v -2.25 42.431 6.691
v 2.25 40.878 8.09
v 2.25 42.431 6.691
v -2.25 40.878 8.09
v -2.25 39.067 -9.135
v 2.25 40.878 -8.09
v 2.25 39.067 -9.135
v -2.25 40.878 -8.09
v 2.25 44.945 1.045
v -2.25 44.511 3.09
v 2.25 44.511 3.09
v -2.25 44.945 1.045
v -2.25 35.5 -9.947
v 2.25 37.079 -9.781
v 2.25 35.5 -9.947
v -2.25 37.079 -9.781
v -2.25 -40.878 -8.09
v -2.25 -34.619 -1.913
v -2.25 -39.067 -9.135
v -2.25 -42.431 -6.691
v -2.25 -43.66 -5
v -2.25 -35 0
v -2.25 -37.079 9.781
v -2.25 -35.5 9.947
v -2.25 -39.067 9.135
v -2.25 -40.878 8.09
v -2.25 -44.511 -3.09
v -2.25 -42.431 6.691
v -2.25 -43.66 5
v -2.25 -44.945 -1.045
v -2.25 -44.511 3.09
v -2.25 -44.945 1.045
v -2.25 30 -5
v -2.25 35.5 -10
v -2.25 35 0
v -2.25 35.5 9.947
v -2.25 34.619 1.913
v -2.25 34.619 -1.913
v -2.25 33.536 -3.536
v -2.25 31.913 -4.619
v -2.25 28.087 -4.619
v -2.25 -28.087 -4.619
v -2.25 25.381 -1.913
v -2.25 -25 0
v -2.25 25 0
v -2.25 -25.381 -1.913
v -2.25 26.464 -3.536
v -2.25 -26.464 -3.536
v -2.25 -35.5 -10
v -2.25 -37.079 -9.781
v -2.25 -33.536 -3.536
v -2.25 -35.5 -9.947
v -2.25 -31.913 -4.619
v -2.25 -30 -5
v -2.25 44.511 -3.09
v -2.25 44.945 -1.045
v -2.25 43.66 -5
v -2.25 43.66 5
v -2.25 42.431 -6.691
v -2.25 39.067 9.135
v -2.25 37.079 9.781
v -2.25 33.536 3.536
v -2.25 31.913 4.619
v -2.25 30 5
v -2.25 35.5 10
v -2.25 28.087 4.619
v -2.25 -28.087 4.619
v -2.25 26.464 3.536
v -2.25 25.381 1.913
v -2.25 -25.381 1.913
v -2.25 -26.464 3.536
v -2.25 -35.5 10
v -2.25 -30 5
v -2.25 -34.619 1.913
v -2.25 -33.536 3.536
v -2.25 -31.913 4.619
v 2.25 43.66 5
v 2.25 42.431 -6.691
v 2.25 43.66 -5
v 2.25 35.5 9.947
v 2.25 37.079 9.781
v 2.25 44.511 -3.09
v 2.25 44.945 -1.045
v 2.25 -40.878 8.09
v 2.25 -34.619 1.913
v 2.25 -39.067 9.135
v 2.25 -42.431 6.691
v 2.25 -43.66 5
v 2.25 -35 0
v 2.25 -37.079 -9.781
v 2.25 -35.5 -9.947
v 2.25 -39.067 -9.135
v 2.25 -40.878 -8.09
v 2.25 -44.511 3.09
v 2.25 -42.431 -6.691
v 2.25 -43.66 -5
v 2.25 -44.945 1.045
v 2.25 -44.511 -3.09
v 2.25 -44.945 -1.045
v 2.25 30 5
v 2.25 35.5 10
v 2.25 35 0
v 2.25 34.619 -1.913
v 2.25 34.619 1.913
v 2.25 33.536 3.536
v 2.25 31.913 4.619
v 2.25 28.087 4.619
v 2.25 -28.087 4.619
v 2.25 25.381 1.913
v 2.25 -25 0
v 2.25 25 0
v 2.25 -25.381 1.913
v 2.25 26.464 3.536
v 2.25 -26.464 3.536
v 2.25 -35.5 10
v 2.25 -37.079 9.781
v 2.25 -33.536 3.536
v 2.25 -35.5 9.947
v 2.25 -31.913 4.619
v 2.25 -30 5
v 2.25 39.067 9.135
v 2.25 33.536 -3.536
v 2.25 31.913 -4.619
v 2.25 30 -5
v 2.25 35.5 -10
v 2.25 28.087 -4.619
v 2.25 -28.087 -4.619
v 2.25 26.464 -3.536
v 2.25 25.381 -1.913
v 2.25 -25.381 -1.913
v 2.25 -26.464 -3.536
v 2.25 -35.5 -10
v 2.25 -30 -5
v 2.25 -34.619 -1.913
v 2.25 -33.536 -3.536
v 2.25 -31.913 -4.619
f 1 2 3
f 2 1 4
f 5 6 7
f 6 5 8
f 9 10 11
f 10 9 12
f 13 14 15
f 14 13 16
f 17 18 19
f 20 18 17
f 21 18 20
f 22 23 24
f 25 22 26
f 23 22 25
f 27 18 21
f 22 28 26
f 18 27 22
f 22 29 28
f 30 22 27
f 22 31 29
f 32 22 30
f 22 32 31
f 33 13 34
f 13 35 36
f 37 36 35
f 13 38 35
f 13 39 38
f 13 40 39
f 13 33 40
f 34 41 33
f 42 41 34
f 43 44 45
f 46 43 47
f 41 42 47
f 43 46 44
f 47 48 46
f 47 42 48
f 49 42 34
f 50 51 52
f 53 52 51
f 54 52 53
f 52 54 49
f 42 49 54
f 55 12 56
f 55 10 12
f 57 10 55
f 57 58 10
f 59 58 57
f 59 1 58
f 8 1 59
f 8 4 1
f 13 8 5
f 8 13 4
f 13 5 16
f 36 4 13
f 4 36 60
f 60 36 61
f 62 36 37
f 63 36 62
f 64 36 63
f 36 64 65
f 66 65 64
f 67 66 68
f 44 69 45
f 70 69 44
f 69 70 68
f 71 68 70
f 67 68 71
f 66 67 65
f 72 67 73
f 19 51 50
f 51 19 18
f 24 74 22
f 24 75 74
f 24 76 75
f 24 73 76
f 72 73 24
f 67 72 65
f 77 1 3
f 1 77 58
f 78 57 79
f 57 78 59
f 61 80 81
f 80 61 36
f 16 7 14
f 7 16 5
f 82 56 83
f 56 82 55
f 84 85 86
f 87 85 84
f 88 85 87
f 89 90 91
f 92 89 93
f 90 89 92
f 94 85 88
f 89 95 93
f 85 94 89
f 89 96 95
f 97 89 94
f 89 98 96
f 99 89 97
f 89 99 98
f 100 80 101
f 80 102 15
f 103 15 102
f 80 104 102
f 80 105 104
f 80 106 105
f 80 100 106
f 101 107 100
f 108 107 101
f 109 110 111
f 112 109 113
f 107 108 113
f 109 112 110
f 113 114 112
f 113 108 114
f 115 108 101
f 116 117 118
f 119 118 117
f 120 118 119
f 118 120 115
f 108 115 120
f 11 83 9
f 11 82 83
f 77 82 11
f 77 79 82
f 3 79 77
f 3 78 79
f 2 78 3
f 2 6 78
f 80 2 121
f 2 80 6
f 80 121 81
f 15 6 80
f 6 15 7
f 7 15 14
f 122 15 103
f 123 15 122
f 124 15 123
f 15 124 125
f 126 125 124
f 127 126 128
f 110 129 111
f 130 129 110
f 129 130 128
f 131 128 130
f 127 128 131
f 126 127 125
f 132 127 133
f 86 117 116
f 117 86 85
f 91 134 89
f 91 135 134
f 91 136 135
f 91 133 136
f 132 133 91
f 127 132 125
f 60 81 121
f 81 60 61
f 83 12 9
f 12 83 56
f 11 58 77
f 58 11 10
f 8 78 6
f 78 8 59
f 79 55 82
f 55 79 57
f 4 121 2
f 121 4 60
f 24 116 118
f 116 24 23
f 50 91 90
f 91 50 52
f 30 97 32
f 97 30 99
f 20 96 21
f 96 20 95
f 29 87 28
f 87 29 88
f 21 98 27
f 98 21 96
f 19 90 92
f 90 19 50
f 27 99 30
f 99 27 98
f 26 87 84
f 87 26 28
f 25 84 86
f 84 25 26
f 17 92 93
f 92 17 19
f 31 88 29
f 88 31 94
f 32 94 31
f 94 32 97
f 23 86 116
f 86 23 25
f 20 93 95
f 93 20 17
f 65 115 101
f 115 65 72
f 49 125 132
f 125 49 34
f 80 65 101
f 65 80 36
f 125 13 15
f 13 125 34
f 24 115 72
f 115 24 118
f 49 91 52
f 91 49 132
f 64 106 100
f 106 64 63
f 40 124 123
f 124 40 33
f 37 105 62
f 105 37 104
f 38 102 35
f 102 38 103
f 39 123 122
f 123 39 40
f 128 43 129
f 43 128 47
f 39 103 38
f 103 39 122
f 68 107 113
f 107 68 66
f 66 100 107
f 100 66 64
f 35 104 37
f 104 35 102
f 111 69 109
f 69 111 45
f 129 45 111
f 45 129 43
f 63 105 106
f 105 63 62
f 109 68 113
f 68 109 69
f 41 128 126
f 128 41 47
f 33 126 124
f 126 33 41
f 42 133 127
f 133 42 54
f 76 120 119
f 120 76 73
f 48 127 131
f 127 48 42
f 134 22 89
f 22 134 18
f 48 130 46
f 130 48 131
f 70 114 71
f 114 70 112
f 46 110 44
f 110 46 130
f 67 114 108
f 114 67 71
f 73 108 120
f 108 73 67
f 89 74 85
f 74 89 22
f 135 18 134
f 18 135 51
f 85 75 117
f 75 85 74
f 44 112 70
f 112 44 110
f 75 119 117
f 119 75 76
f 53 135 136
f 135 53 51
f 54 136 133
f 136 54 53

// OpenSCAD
thikness=4.5;
width=20;
length=85;
hole=10;
holeDistance=60;
empty=1.5;

squareLength=length-width+6;

module chair_2nd_part(){
    difference(){
        union(){
            //surface
            rotate([0,90,0]){
                translate([0,(holeDistance+hole)/2,0]){
                    cylinder(thikness,width/2,width/2,true);
                }
                translate([0,-(holeDistance+hole)/2,0]){
                    cylinder(thikness,width/2,width/2,true);
                }
            }
            cube([thikness,squareLength,width],true);
        }            
        //holes
        rotate([0,90,0]){
            translate([0,holeDistance/2,0]){
                cylinder(thikness+empty,hole/2,hole/2,true);
            }
            translate([0,-holeDistance/2,0]){
                cylinder(thikness+empty,hole/2,hole/2,true);
            }
        }
    }
}

chair_2nd_part();
